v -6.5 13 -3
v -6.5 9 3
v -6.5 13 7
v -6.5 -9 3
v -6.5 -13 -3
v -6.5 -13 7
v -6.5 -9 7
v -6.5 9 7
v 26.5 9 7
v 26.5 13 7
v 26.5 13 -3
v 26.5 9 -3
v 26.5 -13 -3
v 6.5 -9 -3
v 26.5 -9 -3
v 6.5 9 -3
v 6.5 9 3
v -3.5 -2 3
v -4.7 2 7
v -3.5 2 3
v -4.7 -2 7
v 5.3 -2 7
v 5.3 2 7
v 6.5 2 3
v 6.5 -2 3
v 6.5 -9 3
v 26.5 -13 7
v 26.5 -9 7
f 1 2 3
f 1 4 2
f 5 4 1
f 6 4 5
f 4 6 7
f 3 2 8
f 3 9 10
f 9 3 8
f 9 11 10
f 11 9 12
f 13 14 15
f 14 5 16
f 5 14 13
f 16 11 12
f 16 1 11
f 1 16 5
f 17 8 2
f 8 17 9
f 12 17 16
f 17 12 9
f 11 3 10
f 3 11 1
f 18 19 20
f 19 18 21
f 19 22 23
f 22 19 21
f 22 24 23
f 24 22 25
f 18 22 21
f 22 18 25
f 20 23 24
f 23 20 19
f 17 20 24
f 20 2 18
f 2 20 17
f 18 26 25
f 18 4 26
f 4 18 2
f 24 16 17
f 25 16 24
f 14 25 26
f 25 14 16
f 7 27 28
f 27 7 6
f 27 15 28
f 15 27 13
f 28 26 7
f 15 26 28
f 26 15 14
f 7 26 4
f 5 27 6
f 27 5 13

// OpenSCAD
include <../../lib/relativity.scad/relativity.scad> // https://github.com/davidson16807/relativity.scad

mirrored(y)
box([13, 18, 6]) {
  align(-x+y-z) box([33, 4, 10], anchor=-x-y-z);
  align(x+z)
    multmatrix([
      [1,0,-0.3,0],
      [0,1,0,0],
      [0,0,1,0],
      [0,0,0,1],
    ]) box([10, 4, 4], anchor=x-z);
}
